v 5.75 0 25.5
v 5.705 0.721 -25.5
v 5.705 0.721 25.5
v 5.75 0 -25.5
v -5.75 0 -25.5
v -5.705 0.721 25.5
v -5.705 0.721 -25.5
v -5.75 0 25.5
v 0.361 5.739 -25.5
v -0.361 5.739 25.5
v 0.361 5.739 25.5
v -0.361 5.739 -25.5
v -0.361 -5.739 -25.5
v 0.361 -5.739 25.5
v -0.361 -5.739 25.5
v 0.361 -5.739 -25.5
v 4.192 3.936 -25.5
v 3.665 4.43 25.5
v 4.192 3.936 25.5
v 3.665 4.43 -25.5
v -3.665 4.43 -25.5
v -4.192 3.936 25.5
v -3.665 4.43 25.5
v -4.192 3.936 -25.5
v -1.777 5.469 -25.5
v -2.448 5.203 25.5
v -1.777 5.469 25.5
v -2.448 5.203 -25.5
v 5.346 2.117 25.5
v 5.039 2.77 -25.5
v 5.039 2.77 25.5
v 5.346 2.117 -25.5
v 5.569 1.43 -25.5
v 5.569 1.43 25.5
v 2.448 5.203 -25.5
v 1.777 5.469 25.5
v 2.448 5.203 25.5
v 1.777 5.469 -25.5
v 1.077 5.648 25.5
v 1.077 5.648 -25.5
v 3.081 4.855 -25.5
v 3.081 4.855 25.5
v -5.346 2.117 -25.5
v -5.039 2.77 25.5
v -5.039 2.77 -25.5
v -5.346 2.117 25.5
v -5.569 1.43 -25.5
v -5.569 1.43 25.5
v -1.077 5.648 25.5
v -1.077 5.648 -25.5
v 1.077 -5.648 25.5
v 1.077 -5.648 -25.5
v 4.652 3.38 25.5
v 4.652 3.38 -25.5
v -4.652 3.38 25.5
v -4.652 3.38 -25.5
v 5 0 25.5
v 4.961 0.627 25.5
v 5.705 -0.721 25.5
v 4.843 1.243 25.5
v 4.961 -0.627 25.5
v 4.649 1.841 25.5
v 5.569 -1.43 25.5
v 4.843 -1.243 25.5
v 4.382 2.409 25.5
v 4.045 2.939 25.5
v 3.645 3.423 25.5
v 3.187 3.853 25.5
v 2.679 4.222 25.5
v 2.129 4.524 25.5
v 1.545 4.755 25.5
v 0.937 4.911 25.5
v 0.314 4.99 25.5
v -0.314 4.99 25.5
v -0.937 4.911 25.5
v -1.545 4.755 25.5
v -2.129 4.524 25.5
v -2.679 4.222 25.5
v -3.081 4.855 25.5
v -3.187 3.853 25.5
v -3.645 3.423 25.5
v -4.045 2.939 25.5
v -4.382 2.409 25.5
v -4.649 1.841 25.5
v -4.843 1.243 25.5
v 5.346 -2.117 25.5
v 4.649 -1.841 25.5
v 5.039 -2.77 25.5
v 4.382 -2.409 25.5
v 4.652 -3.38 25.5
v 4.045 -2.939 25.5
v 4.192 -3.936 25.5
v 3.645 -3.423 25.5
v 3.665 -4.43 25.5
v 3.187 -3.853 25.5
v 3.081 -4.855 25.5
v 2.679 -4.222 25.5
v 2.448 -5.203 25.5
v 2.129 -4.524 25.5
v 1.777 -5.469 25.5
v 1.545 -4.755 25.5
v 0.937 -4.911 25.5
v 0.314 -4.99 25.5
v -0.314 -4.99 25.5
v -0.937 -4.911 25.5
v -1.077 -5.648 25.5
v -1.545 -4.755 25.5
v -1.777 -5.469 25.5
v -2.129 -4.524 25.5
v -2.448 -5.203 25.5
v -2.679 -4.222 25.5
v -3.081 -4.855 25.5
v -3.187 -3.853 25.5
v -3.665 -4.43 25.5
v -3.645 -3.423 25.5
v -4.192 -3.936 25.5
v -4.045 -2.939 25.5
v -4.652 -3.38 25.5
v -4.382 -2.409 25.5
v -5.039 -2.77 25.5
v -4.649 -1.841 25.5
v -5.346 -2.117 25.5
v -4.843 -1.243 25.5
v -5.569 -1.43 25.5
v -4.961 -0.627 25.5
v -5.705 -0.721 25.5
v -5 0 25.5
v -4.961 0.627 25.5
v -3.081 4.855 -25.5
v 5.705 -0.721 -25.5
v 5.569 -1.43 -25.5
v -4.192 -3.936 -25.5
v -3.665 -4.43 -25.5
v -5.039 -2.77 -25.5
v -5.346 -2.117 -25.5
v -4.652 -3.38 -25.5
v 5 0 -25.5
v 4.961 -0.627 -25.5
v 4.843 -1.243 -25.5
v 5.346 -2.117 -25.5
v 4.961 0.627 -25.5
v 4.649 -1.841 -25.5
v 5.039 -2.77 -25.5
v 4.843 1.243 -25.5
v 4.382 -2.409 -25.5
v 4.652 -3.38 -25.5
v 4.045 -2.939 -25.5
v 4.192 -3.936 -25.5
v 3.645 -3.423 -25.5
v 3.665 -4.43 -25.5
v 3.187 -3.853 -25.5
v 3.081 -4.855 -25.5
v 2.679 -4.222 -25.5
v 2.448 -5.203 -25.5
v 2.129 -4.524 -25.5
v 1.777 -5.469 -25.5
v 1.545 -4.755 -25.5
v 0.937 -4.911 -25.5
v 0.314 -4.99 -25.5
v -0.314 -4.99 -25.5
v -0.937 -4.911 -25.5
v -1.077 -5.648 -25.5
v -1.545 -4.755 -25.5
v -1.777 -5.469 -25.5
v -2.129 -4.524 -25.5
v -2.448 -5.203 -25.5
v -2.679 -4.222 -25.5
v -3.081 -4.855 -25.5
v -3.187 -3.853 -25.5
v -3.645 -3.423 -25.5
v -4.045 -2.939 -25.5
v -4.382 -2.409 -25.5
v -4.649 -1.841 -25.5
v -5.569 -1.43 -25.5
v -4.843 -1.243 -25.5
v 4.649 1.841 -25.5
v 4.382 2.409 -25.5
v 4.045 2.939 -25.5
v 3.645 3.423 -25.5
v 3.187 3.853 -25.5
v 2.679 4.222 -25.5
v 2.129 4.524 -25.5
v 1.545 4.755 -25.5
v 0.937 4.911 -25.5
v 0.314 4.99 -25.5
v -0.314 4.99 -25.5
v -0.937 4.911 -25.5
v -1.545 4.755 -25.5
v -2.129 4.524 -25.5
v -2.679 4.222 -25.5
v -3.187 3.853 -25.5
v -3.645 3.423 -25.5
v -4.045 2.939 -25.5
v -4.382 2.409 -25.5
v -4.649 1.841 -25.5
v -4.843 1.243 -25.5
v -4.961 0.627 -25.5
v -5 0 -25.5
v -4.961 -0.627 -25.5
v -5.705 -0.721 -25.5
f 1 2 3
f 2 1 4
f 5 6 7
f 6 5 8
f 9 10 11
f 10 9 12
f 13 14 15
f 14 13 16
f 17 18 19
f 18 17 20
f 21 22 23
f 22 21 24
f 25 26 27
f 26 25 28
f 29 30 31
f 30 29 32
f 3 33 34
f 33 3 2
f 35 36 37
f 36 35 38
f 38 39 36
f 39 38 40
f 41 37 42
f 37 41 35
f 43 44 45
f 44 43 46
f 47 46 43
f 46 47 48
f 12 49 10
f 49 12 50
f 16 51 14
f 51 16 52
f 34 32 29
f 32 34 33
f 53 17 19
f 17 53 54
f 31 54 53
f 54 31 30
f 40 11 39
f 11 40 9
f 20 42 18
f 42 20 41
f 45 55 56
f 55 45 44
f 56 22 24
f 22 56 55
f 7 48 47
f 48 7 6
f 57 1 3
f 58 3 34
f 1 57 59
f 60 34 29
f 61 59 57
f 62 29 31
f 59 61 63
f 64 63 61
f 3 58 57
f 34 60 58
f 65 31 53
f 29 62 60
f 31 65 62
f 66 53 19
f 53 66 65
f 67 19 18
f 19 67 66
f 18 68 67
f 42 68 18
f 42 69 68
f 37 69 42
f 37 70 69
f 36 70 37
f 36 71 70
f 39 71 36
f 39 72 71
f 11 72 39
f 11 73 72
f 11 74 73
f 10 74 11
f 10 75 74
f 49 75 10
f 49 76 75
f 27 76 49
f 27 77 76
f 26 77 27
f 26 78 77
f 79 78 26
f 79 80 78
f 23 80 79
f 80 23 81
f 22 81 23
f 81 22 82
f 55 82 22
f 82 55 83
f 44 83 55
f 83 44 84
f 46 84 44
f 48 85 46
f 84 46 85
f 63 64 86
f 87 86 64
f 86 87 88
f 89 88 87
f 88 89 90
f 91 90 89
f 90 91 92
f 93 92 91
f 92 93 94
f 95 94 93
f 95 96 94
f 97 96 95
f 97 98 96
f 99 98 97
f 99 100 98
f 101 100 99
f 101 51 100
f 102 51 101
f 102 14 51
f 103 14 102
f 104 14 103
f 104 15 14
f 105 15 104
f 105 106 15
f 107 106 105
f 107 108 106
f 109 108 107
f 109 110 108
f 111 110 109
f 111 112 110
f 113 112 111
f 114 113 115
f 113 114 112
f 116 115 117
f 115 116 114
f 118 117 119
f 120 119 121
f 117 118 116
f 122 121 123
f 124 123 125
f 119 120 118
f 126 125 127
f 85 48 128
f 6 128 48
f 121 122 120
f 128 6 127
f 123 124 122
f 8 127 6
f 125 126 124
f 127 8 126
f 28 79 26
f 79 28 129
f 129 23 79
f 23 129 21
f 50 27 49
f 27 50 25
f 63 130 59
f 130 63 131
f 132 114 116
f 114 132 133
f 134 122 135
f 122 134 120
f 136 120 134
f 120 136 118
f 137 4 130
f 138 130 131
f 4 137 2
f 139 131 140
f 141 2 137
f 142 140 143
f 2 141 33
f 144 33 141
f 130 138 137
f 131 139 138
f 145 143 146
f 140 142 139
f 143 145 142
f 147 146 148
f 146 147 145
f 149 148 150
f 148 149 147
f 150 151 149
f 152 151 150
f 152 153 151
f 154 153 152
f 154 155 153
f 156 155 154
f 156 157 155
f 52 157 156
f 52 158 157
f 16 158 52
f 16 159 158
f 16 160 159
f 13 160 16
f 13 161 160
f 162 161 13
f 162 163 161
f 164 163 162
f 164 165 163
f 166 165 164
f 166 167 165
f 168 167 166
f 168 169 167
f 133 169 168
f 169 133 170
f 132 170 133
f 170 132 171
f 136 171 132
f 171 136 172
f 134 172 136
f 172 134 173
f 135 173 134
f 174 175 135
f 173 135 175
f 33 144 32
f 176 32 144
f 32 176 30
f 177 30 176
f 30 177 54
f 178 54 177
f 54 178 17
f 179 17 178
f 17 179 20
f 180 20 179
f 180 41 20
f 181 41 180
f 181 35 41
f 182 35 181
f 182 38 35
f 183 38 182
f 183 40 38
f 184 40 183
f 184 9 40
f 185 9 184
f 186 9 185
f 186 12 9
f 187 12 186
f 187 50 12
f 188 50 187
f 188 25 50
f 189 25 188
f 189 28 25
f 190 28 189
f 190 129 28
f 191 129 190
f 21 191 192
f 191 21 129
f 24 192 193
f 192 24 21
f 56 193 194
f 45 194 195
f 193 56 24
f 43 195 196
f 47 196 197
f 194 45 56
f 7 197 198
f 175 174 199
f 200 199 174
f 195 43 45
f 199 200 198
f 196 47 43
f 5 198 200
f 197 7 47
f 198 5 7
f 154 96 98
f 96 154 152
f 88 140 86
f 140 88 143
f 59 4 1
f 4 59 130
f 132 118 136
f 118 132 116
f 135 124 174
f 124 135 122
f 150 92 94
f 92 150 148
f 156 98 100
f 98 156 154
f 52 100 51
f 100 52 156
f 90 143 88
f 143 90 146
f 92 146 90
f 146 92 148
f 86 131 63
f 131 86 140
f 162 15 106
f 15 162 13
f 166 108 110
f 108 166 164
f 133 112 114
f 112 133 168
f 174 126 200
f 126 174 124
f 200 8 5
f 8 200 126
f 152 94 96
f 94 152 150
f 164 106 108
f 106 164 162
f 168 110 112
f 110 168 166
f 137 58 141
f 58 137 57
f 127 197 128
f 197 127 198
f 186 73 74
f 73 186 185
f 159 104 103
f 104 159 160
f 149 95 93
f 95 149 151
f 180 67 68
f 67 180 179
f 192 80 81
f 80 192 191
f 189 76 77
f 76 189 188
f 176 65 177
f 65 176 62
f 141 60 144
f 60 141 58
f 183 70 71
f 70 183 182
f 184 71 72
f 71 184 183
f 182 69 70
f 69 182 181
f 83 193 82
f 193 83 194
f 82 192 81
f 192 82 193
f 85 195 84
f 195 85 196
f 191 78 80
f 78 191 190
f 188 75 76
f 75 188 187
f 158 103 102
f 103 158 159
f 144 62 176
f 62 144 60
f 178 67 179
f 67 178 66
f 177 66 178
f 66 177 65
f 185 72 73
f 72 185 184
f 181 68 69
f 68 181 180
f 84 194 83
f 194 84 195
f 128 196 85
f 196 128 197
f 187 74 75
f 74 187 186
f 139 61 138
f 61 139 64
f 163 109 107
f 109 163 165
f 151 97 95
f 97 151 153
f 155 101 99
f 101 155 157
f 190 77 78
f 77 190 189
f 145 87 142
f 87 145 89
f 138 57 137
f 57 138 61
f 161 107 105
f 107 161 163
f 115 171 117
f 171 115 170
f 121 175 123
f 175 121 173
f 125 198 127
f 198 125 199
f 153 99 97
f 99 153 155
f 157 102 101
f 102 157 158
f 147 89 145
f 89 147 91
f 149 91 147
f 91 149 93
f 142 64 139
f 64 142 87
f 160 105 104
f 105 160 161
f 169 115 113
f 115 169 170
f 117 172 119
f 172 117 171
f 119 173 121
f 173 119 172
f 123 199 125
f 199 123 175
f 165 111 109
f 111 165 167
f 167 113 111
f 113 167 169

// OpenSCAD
$fn = 50;


difference() {
	union() {
		translate(v = [0, 0, -25.5000000000]) {
			cylinder(h = 51, r = 5.7500000000);
		}
	}
	union() {
		translate(v = [0, 0, -100.0000000000]) {
			cylinder(h = 200, r = 5.0000000000);
		}
	}
}
